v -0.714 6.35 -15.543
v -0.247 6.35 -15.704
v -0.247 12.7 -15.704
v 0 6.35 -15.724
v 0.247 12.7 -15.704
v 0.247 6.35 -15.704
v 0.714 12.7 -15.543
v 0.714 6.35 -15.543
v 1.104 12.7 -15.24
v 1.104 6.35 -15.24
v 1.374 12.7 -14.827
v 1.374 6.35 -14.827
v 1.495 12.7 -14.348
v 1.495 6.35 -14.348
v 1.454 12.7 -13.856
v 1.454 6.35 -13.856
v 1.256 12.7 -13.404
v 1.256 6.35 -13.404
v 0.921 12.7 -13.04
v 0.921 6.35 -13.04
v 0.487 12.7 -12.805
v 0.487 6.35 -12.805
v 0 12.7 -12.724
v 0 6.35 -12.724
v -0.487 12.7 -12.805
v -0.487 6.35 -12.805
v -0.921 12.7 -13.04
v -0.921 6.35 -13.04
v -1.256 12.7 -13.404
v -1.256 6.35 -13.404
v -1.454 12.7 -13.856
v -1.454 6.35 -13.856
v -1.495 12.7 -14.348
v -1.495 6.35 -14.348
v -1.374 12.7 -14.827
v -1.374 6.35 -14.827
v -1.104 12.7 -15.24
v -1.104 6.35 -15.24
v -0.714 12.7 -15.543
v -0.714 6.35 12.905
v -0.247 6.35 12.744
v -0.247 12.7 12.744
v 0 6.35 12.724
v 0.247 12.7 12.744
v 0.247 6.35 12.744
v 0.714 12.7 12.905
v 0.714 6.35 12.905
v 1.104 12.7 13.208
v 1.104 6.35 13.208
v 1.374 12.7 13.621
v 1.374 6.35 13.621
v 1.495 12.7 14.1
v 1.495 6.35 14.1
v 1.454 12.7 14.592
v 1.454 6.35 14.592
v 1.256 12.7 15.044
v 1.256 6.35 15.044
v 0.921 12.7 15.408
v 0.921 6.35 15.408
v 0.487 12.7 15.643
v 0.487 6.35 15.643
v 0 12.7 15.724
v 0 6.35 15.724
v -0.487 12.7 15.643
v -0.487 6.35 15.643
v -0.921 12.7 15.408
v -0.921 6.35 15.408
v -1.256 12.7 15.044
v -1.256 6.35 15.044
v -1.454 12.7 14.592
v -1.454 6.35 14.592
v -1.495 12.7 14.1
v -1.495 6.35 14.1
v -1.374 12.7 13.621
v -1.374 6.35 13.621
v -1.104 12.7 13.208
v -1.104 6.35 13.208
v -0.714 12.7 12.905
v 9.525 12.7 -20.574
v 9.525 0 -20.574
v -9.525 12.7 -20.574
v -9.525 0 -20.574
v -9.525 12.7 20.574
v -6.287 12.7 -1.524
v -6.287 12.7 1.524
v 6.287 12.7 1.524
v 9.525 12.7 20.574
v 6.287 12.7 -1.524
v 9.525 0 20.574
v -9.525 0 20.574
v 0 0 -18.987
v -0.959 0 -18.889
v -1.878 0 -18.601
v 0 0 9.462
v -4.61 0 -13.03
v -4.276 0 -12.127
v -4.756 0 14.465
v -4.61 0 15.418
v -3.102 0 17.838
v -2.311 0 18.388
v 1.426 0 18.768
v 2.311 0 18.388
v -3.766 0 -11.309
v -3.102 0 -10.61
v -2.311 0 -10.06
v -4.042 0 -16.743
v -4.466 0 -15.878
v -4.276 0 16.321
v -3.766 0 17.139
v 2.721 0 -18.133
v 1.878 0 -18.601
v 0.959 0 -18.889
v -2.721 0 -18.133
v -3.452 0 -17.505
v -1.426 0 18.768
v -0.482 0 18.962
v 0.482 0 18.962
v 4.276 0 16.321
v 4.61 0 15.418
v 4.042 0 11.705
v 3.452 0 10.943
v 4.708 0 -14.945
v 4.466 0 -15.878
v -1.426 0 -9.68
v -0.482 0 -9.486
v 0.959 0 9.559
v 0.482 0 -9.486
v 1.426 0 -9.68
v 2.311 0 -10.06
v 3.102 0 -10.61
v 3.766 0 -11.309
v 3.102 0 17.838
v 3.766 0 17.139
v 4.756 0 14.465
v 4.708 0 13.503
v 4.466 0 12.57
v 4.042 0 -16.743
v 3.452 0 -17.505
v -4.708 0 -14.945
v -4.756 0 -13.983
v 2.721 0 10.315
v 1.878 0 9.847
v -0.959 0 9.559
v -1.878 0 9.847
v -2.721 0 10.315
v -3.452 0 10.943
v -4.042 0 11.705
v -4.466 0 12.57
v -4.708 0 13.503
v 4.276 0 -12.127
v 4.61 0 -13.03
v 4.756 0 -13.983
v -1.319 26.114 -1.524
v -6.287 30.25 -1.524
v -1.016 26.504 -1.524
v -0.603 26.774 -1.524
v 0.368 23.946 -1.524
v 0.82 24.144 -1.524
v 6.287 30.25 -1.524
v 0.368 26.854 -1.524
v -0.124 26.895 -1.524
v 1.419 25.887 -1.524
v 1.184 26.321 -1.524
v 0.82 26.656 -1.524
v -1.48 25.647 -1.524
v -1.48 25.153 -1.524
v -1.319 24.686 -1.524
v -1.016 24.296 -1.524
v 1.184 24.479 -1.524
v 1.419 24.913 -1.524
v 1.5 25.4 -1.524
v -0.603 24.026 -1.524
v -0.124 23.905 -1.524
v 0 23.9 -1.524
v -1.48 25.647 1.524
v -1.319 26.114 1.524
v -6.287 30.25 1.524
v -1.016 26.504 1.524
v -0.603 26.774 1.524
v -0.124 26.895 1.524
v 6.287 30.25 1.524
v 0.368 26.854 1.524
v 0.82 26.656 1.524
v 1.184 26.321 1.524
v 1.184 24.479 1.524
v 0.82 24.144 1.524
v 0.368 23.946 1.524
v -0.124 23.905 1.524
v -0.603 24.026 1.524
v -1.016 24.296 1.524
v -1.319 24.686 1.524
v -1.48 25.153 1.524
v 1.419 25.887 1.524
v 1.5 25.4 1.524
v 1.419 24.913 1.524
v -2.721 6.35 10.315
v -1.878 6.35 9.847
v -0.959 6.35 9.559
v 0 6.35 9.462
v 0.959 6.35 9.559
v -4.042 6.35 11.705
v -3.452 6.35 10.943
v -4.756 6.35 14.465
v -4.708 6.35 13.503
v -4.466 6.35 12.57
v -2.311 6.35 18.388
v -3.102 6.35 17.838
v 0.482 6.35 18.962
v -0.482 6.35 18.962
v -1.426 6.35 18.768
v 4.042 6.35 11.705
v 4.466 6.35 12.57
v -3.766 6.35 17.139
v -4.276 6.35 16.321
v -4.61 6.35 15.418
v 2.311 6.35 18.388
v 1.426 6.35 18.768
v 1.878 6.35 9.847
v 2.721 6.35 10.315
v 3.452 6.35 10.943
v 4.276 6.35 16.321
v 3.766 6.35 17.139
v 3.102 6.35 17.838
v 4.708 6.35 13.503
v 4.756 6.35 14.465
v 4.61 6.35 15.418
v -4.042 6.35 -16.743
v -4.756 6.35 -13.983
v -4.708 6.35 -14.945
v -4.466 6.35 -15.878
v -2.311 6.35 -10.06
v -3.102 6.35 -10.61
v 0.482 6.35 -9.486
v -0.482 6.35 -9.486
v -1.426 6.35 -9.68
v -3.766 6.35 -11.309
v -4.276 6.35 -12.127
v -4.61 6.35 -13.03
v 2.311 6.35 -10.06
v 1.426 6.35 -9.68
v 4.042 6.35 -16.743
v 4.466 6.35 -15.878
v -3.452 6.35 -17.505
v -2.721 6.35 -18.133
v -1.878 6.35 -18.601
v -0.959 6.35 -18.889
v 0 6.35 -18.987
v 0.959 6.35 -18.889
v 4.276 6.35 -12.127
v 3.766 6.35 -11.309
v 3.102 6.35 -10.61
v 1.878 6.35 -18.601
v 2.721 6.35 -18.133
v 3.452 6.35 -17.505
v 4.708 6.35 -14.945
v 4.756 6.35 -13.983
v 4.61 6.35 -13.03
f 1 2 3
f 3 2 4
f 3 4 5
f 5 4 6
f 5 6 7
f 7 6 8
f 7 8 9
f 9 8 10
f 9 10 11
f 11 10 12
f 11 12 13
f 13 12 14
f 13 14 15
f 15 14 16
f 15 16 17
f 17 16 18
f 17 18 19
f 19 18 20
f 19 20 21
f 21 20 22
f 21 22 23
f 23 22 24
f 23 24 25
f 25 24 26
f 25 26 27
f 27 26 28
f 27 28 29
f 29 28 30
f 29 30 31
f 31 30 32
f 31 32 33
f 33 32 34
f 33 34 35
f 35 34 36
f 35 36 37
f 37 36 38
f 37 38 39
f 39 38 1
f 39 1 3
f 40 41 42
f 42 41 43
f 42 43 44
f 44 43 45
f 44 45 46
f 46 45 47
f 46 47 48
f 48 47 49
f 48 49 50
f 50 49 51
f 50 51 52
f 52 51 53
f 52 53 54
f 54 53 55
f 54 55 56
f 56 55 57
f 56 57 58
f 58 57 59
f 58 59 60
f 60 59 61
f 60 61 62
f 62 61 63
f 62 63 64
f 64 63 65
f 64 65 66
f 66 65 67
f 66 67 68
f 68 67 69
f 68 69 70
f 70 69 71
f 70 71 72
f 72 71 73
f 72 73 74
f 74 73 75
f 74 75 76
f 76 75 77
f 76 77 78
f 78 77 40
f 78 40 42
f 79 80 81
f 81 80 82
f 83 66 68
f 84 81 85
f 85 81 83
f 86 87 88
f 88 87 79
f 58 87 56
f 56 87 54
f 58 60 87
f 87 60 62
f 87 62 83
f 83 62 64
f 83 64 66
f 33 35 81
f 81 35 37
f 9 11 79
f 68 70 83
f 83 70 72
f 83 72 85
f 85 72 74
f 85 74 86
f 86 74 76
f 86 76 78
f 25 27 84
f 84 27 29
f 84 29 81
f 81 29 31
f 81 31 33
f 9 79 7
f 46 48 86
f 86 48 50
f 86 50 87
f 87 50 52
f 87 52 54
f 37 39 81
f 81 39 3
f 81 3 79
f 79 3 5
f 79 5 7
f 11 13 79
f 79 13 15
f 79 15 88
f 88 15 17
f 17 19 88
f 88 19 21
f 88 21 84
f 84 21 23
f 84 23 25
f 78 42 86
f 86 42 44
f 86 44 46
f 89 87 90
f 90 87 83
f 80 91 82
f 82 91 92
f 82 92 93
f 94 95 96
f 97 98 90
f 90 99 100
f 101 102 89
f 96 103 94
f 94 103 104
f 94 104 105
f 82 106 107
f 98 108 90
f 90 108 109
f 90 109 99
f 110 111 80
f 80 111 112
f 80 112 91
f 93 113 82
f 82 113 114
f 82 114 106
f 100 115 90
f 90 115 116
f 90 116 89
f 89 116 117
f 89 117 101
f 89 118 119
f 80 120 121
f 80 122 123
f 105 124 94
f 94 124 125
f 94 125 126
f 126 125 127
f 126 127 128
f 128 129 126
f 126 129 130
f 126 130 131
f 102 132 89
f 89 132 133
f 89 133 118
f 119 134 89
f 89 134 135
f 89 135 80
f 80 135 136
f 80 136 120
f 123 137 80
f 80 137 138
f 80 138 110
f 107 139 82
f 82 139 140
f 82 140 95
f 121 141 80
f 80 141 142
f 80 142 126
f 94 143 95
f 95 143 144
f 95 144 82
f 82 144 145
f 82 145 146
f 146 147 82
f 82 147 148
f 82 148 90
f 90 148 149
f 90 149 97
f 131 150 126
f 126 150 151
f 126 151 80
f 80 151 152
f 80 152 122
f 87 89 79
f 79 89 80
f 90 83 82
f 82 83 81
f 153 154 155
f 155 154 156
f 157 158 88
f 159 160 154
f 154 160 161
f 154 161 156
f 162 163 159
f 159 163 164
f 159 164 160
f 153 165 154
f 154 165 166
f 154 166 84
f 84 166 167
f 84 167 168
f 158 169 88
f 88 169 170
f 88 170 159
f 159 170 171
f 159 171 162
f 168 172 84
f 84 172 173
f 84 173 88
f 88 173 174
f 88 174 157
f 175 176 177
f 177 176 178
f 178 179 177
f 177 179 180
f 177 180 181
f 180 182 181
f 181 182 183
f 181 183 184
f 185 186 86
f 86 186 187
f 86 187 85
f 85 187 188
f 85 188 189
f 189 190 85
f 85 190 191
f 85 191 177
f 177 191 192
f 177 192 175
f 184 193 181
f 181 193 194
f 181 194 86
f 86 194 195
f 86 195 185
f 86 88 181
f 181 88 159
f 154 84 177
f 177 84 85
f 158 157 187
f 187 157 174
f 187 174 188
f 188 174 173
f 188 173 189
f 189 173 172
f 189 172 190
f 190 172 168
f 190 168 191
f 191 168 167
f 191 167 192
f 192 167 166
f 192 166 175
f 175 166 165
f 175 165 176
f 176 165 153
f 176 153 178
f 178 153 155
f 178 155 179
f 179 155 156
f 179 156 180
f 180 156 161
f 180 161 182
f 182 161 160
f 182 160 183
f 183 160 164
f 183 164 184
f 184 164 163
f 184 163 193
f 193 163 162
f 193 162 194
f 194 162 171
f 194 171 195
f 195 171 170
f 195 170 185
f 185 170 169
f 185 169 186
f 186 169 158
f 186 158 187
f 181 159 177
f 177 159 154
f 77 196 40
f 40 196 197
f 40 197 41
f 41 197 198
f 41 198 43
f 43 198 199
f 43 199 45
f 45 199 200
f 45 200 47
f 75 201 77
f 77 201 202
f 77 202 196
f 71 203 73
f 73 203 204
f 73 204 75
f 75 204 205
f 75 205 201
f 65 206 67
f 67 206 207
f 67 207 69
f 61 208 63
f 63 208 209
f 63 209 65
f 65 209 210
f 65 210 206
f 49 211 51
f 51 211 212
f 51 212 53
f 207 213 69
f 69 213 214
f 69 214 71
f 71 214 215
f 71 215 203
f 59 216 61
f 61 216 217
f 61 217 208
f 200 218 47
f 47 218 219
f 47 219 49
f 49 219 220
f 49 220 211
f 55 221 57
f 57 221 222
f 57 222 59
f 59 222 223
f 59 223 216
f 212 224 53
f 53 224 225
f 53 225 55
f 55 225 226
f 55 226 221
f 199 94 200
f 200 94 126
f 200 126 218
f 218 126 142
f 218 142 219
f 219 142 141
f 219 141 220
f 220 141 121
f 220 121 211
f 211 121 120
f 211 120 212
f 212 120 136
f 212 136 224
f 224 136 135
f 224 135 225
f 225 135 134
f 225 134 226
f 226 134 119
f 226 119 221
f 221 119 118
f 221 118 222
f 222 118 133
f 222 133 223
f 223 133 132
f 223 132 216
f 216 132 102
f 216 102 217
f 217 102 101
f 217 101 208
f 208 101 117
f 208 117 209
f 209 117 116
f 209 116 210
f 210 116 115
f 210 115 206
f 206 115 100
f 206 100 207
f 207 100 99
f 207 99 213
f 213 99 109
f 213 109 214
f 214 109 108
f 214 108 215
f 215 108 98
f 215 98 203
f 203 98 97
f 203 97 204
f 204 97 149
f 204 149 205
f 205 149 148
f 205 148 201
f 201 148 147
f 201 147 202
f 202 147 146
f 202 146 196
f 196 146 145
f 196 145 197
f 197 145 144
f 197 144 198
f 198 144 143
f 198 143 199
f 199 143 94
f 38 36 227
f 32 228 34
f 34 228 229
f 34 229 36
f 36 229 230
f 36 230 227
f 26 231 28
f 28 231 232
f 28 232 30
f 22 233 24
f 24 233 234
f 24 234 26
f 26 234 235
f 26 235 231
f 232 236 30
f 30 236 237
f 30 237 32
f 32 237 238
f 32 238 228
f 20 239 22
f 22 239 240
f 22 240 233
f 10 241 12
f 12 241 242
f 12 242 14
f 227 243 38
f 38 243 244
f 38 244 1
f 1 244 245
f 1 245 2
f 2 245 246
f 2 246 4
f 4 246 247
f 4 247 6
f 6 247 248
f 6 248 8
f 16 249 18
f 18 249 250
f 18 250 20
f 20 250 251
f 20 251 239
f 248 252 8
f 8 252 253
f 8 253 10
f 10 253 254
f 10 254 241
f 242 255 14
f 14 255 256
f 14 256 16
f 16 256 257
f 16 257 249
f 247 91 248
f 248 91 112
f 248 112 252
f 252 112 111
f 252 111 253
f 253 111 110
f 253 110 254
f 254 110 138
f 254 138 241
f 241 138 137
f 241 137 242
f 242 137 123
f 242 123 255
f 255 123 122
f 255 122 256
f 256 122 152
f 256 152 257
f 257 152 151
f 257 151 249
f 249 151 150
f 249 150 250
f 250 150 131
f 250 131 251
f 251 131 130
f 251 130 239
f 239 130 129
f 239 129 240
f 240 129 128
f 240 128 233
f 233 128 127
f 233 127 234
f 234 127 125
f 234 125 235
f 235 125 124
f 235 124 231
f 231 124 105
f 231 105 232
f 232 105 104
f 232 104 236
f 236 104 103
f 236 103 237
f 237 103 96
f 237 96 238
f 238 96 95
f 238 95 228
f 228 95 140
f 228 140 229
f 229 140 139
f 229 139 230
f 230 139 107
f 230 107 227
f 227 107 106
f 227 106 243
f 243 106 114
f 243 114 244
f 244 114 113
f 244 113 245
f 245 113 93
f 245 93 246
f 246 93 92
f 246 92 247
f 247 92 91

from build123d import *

# Parameters (mm, degrees)
BOSS_EXTRUDE1_DEPTH = 9.525
SKETCH1_3_W         = 3.048
SKETCH1_3_H         = 25.4
BOSS_EXTRUDE2_DEPTH = 6.2865
SKETCH2_R           = 1.5
CUT_EXTRUDE1_DEPTH  = 46.06281426
SKETCH3_W           = 12.573
SKETCH3_H           = 7.85
CUT_EXTRUDE2_DEPTH  = 46.06281426
SKETCH4_R           = 1.5
CUT_EXTRUDE3_DEPTH  = 29.670849325
SKETCH5_R           = 4.7625
CUT_EXTRUDE4_DEPTH  = 6.35


with BuildPart() as part:
    # Sketch1 → Boss-Extrude1 (new, symmetric)
    with BuildSketch(Plane(origin=(0, 0, 0), x_dir=(0, 0, -1), z_dir=(1, 0, 0))):
        Polygon((-1.524, 12.7), (-20.574, 12.7), (-20.574, 0), (20.574, 0), (20.574, 12.7), (1.524, 12.7), align=None)
    extrude(amount=BOSS_EXTRUDE1_DEPTH, both=True)

    # Sketch1<3> → Boss-Extrude2 (add, symmetric)
    with BuildSketch(Plane(origin=(0, 0, 0), x_dir=(0, 0, -1), z_dir=(1, 0, 0))):
        with Locations((0, 25.4)):
            Rectangle(SKETCH1_3_W, SKETCH1_3_H)
    extrude(amount=BOSS_EXTRUDE2_DEPTH, both=True)

    # Sketch2 → Cut-Extrude1 (cut, through all)
    with BuildSketch(Plane.XY.offset(1.524)):
        with Locations((0, 25.4)):
            Circle(SKETCH2_R)
        with Locations((0, 31.75)):
            Circle(SKETCH2_R)
    extrude(amount=-CUT_EXTRUDE1_DEPTH, mode=Mode.SUBTRACT)

    # Sketch3 → Cut-Extrude2 (cut, through all)
    with BuildSketch(Plane.XY.offset(1.524)):
        with Locations((0, 34.175)):
            Rectangle(SKETCH3_W, SKETCH3_H)
    extrude(amount=-CUT_EXTRUDE2_DEPTH, mode=Mode.SUBTRACT)

    # Sketch4 → Cut-Extrude3 (cut, through all)
    with BuildSketch(Plane(origin=(0, 12.7, 0), x_dir=(1, 0, 0), z_dir=(0, 1, 0))):
        with Locations((0, -14.224)):
            Circle(SKETCH4_R)
        with Locations((0, 14.224)):
            Circle(SKETCH4_R)
    extrude(amount=-CUT_EXTRUDE3_DEPTH, mode=Mode.SUBTRACT)

    # Sketch5 → Cut-Extrude4 (cut)
    with BuildSketch(Plane.XZ):
        with Locations((0, 14.224)):
            Circle(SKETCH5_R)
        with Locations((0, -14.224)):
            Circle(SKETCH5_R)
    extrude(amount=-CUT_EXTRUDE4_DEPTH, mode=Mode.SUBTRACT)


solid = part.part
